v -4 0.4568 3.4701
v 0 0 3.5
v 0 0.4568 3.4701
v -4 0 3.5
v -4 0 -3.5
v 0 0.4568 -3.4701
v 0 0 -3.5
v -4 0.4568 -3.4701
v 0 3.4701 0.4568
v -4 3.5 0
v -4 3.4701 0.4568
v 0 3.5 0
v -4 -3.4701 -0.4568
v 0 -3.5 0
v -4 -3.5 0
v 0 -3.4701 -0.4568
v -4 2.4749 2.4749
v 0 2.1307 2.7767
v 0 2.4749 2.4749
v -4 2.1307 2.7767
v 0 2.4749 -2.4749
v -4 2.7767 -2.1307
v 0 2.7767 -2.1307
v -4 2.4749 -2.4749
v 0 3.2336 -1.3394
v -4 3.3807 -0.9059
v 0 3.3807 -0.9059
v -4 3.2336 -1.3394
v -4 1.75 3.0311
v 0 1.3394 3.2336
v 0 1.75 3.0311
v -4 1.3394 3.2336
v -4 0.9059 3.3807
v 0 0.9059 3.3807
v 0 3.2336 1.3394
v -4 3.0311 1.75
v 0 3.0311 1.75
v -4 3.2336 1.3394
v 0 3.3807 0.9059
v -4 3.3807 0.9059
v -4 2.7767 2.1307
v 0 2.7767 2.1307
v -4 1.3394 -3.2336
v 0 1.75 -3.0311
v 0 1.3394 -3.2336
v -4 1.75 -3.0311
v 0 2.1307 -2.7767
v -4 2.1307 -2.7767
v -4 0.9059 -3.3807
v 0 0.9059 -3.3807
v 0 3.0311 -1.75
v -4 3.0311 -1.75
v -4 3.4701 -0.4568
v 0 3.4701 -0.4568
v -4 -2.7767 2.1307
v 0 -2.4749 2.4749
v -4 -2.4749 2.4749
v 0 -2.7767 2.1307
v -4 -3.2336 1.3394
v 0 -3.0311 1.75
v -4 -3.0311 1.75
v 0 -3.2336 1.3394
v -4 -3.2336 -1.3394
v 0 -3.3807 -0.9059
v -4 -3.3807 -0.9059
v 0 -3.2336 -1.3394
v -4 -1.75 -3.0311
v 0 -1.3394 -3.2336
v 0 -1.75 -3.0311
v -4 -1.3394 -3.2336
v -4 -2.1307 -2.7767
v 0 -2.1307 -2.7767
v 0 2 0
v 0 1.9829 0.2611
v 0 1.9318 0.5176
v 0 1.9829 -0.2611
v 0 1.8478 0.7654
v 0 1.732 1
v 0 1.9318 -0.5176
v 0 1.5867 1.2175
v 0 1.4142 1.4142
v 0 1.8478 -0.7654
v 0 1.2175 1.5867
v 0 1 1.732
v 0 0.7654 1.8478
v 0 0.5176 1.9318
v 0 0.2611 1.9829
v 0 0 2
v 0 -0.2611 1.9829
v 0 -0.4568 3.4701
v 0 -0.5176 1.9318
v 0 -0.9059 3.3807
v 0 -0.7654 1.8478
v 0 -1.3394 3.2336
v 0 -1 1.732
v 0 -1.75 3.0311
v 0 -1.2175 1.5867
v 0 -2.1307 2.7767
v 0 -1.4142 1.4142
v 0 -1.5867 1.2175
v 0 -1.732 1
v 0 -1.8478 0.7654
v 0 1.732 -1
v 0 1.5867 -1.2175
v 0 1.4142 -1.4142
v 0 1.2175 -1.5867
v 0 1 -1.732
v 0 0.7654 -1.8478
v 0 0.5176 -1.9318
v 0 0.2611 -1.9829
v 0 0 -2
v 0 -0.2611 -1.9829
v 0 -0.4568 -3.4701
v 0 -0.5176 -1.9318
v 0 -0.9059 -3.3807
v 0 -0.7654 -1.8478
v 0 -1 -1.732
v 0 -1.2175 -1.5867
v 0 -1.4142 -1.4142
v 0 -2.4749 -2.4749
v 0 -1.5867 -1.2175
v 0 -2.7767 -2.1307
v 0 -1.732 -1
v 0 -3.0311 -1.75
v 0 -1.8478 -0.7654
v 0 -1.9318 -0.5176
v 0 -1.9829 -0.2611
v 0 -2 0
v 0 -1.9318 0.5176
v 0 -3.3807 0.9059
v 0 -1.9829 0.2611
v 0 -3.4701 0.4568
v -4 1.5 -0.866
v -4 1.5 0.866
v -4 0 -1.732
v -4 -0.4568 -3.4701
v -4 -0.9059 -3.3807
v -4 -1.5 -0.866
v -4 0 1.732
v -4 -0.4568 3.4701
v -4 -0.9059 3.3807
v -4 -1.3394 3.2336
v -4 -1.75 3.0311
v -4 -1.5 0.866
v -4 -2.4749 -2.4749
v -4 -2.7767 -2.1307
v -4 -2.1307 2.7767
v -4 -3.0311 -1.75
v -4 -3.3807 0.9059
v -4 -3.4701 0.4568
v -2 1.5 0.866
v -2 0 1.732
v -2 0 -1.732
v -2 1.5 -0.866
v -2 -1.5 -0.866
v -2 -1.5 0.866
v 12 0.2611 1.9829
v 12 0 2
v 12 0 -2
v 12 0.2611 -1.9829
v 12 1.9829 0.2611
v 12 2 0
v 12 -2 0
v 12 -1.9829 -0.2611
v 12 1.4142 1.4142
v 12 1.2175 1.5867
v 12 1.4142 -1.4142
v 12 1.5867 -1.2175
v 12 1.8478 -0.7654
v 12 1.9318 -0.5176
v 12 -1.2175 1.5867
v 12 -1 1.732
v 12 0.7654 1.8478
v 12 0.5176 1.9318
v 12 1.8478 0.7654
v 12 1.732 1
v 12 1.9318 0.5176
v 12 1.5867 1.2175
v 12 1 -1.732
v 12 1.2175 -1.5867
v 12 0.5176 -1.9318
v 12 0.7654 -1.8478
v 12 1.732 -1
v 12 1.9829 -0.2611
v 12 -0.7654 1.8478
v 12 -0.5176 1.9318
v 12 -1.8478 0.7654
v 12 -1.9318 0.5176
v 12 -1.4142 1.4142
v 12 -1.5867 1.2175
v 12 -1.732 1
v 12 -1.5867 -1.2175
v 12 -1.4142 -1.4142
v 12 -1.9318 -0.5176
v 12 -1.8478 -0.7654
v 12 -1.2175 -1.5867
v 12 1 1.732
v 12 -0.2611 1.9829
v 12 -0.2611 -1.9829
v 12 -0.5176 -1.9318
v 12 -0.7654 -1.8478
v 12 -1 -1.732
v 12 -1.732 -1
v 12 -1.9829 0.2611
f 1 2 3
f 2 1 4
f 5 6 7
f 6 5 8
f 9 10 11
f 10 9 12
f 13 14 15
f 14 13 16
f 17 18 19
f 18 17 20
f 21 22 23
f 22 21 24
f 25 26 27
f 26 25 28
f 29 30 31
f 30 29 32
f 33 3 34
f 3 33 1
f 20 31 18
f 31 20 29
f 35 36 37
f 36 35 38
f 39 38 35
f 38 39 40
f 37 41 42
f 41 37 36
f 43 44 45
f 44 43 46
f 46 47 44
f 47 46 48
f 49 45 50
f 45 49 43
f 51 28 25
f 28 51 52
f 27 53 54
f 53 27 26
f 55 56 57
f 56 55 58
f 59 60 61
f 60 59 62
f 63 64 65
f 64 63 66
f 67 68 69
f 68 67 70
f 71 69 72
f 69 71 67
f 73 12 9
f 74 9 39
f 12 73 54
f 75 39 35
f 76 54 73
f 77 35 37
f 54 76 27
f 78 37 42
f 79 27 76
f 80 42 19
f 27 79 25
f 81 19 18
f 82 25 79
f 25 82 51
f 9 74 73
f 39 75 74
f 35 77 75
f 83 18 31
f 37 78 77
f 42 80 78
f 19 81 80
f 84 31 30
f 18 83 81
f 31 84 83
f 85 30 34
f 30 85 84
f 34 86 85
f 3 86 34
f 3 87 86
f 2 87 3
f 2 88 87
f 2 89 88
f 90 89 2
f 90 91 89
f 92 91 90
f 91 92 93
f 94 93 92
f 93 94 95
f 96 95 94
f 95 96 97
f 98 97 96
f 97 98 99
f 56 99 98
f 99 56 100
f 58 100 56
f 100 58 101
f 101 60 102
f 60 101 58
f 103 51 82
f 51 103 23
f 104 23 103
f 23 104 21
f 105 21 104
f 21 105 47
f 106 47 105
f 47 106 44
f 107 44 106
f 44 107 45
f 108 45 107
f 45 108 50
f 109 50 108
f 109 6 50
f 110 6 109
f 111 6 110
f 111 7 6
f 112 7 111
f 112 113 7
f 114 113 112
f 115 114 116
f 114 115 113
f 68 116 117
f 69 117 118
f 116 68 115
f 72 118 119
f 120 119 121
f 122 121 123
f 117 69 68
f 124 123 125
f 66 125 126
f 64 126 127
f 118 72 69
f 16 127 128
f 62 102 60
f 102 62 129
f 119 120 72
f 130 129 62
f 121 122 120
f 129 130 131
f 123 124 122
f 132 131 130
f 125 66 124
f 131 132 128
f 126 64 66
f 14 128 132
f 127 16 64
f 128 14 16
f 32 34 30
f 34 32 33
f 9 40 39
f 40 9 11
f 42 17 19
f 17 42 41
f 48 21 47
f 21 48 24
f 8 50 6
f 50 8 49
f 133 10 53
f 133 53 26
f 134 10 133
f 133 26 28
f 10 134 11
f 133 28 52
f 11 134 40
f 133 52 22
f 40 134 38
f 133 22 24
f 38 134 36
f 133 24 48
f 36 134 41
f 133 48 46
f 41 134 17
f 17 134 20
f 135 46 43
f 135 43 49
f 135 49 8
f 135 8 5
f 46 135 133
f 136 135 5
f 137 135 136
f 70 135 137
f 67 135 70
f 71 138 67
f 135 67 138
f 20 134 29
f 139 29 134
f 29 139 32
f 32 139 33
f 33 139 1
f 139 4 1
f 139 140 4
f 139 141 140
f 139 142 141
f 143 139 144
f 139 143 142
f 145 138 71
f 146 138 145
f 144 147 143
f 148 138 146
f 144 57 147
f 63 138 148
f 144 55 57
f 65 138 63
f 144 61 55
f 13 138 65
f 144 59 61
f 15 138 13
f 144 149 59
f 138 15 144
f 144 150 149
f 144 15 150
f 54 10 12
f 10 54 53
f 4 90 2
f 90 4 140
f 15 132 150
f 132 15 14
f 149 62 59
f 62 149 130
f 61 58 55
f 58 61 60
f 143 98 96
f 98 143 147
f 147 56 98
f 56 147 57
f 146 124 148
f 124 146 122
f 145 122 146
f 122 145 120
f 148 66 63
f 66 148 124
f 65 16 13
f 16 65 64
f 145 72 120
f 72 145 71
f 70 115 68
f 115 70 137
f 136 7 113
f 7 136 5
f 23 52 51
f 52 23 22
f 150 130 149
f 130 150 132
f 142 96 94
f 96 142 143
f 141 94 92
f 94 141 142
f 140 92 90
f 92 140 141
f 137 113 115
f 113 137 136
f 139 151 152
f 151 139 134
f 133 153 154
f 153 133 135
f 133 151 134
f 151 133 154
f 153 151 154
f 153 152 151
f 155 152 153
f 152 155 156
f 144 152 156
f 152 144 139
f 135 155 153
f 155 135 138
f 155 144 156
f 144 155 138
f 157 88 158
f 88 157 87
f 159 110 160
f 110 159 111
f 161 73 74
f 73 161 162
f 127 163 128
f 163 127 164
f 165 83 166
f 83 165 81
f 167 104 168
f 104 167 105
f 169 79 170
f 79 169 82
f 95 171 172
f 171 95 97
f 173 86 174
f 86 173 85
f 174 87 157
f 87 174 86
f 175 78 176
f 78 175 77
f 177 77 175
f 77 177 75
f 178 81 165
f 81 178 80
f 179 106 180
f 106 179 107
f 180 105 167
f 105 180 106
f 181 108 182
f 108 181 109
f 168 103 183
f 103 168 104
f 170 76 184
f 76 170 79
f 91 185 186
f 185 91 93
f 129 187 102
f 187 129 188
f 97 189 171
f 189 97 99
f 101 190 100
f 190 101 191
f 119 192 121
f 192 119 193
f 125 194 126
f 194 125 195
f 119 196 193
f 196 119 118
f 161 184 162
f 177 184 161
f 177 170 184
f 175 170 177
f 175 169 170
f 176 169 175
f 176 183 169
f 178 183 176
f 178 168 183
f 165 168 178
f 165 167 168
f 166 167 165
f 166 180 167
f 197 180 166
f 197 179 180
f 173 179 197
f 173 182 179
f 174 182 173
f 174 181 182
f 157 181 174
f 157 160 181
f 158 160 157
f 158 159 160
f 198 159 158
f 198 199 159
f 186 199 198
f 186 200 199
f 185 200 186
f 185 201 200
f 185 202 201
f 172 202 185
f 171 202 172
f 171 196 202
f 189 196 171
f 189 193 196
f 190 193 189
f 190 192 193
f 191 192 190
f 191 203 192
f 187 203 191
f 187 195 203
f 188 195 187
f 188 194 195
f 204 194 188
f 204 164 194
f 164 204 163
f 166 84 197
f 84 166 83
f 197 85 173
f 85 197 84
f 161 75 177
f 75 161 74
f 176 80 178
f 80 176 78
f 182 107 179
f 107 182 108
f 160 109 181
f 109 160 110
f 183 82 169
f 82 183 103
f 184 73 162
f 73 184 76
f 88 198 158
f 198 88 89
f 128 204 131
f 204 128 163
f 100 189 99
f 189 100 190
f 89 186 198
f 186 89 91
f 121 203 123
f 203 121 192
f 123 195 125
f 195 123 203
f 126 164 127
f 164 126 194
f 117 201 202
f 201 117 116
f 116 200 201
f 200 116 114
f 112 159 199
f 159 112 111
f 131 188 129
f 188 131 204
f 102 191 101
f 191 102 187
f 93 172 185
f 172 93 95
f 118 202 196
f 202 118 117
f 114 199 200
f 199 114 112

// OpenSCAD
// file: ../../lib/nutsnbolts/data-access.scad
// Norm Nuts and Bolts - a OpenSCAD library
// Copyright (C) 2012  Johannes Kneer

// This program is free software: you can redistribute it and/or modify
// it under the terms of the GNU General Public License as published by
// the Free Software Foundation, either version 3 of the License, or
// (at your option) any later version.

// This program is distributed in the hope that it will be useful,
// but WITHOUT ANY WARRANTY; without even the implied warranty of
// MERCHANTABILITY or FITNESS FOR A PARTICULAR PURPOSE.  See the
// GNU General Public License for more details.

// You should have received a copy of the GNU General Public License
// along with this program.  If not, see <http://www.gnu.org/licenses/>.


// DATABASE ACCESS FUNCTIONS AND CONSTANTS



// == CONSTANTS ==

// screw table access keys
_NB_S_DESC            = 0;
_NB_S_FAMKEY			    = 1;
_NB_S_LENGTH          = 2;
_NB_S_NOTHREAD_LENGTH = 3;

_NB_F_DESC			      = 0;
_NB_F_OUTER_DIA       = 1;
_NB_F_INNER_DIA       = 2;
_NB_F_LEAD            = 3;
_NB_F_KEY             = 4;
_NB_F_KEY_DEPTH       = 5;
_NB_F_HEAD_HEIGHT     = 6;
_NB_F_HEAD_DIA        = 7;
_NB_F_NUT_KEY         = 8;
_NB_F_NUT_HEIGHT      = 9;
_NB_F_PITCH_FINE      = 10;
_NB_F_PITCH_MEDIUM    = 11;
_NB_F_PITCH_COARSE    = 12;


// == FUNCTIONS ==

// _get_screw("descriptor")   with descriptor = M8x25
//   find the line for a general object in the data matrix

function _get_screw(n) = data_screw[search([n], data_screw)[0]];
function _get_screw_fam(n) = data_screw_fam[search([_get_screw(n)[_NB_S_FAMKEY]], data_screw_fam)[0]];

function _get_fam(n) = data_screw_fam[search([n], data_screw_fam)[0]];


// _get_XXXXX("descriptor") functions
// find a single property in the database

function _get_desc(n)        = _get_screw(n)[_NB_S_DESC];
function _get_famkey(n)         = _get_screw(n)[_NB_S_FAMKEY];
function _get_length(n)      = _get_screw(n)[_NB_S_LENGTH];
function _get_nt_length(n)   = _get_screw(n)[_NB_S_NOTHREAD_LENGTH];

function _get_outer_dia(n)   = _get_screw_fam(n)[_NB_F_OUTER_DIA];
function _get_inner_dia(n)   = _get_screw_fam(n)[_NB_F_INNER_DIA];
function _get_lead(n)        = _get_screw_fam(n)[_NB_F_LEAD];
function _get_head_height(n) = _get_screw_fam(n)[_NB_F_HEAD_HEIGHT];
function _get_head_dia(n)    = _get_screw_fam(n)[_NB_F_HEAD_DIA];
function _get_nut_key(n)     = _get_screw_fam(n)[_NB_F_NUT_KEY];
function _get_nut_height(n)  = _get_screw_fam(n)[_NB_F_NUT_HEIGHT];
function _get_fine_pitch(n)  = _get_screw_fam(n)[_NB_F_PITCH_FINE];
function _get_medium_pitch(n)  = _get_screw_fam(n)[_NB_F_PITCH_MEDIUM];
function _get_coarse_pitch(n)  = _get_screw_fam(n)[_NB_F_PITCH_COARSE];
// main file
/**********************************************************************************************************************
 **
 ** parts/vitamins/screw_M4x12.scad
 **
 ** This file renders a screw of the dimensions specified by the file name.
 **
 **********************************************************************************************************************/

include <../../lib/nutsnbolts/cyl_head_bolt.scad>;

$fn = 48;
rotate([0, -90, 0])
	screw("M4x12"); 
